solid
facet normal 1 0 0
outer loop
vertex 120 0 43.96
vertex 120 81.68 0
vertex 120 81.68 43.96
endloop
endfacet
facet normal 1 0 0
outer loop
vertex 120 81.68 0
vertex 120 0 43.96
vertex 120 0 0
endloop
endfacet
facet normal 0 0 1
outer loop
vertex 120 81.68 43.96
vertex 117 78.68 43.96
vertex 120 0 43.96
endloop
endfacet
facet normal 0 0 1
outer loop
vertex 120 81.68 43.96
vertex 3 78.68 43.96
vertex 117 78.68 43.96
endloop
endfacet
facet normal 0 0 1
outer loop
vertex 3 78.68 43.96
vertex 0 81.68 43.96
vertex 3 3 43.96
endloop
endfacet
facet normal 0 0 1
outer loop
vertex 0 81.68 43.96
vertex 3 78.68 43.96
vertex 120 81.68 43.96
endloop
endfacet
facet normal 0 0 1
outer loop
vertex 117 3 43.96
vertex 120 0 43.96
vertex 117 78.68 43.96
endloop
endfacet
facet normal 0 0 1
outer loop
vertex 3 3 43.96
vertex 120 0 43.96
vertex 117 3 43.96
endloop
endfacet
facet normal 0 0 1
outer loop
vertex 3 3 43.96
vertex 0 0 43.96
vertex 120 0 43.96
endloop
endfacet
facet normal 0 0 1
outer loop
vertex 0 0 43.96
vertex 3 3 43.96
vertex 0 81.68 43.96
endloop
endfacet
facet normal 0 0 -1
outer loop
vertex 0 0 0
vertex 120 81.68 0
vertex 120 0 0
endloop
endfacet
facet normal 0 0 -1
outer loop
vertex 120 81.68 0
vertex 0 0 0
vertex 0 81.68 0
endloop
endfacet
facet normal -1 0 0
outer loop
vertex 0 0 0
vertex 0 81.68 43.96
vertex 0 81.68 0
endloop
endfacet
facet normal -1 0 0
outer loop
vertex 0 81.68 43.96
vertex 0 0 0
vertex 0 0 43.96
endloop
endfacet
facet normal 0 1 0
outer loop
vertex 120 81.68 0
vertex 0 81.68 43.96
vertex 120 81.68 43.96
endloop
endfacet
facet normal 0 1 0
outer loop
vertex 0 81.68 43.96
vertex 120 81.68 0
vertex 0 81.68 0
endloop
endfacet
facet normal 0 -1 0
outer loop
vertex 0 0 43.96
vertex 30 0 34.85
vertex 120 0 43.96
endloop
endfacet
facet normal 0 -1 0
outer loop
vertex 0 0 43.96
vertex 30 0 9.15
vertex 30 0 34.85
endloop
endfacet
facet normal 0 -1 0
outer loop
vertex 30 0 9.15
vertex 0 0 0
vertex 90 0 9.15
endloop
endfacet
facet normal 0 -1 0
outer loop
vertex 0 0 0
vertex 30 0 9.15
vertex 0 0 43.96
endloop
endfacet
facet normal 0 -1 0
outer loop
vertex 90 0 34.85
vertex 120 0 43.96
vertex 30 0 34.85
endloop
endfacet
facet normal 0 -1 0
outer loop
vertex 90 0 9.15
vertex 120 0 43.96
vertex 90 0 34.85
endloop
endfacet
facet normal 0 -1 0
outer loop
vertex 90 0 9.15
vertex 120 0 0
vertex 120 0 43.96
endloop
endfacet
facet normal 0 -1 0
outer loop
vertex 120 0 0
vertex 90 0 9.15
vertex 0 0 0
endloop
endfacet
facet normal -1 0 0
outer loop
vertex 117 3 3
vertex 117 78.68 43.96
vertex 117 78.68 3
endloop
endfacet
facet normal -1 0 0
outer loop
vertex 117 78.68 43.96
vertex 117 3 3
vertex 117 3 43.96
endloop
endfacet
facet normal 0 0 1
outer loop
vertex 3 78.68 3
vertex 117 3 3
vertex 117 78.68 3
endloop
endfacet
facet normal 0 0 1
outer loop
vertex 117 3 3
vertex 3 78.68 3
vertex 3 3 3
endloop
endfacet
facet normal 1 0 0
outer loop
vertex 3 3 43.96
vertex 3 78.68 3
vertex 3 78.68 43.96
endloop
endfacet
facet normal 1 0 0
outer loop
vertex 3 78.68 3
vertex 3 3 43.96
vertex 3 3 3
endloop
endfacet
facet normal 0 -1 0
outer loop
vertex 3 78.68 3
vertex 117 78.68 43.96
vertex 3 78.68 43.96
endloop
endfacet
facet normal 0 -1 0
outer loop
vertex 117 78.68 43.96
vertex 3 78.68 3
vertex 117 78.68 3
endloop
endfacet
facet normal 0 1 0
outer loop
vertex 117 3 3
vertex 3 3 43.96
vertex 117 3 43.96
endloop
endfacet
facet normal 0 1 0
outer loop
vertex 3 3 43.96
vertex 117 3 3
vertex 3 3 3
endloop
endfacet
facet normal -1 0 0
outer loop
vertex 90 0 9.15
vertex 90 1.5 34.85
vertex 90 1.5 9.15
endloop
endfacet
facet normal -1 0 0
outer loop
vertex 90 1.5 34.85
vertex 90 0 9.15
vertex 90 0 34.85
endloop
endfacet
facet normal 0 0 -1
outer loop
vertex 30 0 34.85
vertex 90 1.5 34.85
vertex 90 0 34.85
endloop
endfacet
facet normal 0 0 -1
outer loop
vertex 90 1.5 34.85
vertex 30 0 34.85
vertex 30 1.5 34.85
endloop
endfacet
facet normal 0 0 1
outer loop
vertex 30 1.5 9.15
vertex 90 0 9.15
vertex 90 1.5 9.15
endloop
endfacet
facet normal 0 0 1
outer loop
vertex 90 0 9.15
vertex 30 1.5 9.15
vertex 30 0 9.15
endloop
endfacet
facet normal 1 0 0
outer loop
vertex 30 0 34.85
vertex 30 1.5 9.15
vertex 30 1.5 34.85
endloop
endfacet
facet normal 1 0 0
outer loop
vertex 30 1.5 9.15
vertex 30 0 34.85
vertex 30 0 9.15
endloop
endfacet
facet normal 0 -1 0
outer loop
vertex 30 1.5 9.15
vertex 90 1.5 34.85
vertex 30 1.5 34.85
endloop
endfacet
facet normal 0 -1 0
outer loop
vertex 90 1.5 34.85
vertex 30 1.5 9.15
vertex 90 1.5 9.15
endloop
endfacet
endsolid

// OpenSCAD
/* doodle-meta {"version":1,"parameters":{"width":{"label":"Overall width","description":"Changes the overall width of the box","unit":"mm","feature":"body_width"},"depth":{"label":"Overall depth","description":"Changes the overall depth of the box","unit":"mm","feature":"body_depth"},"height":{"label":"Overall height","description":"Changes the overall height of the box","unit":"mm","feature":"body_height"},"wall_thickness":{"label":"Wall thickness","description":"Changes the uniform wall thickness of the box","unit":"mm","feature":"wall_thickness"},"window_width":{"label":"Window width","description":"Changes the width of the rectangular window","unit":"mm","feature":"front_window"},"window_height":{"label":"Window height","description":"Changes the height of the rectangular window","unit":"mm","feature":"front_window"},"window_z":{"label":"Window vertical position","description":"Changes the vertical center position of the window","unit":"mm","feature":"front_window"}},"features":{"body_width":{"kind":"dimension","axis":"x","label":"Overall width"},"body_depth":{"kind":"dimension","axis":"y","label":"Overall depth"},"body_height":{"kind":"dimension","axis":"z","label":"Overall height"},"wall_thickness":{"kind":"region","label":"Wall thickness","min":[0,0,0],"max":[{"parameter":"wall_thickness","scale":1,"offset":0},{"parameter":"wall_thickness","scale":1,"offset":0},{"parameter":"height","scale":1,"offset":0}]},"front_window":{"kind":"region","label":"Front window","min":[{"parameter":"width","scale":0.5,"offset":-0.5},{"parameter":"width","scale":0.5,"offset":-0.5},{"parameter":"window_z","scale":1,"offset":-0.5}],"max":[{"parameter":"width","scale":0.5,"offset":0.5},{"parameter":"width","scale":0.5,"offset":0.5},{"parameter":"window_z","scale":1,"offset":0.5}]}}} */

// Parameters
width = 120.0;
depth = 81.68;
height = 43.96;
wall_thickness = 3.0;
window_width = 60.0;
window_height = 25.7;
window_z = 22.0; // Centered vertically in the front view

// Derived constants
eps = 0.01;

// Main Body Construction
difference() {
    // 1. Outer Shell
    cube([width, depth, height], center=false);

    // 2. Inner Cavity (Open Top)
    // Subtract the interior volume to create walls and floor
    translate([wall_thickness, wall_thickness, wall_thickness]) {
        cube([width - 2*wall_thickness, depth - 2*wall_thickness, height - wall_thickness + eps], center=false);
    }

    // 3. Front Window Cutout
    // The window is in the front wall (Y=0 to Y=wall_thickness)
    // It cuts through the Y axis
    translate([width/2, -eps, window_z]) {
        // Center the cutter on the X and Z axes relative to the wall
        // X: centered at width/2
        // Y: spans from -eps to wall_thickness + eps to ensure clean cut
        // Z: centered at window_z
        cube([window_width, wall_thickness + 2*eps, window_height], center=true);
    }
}
